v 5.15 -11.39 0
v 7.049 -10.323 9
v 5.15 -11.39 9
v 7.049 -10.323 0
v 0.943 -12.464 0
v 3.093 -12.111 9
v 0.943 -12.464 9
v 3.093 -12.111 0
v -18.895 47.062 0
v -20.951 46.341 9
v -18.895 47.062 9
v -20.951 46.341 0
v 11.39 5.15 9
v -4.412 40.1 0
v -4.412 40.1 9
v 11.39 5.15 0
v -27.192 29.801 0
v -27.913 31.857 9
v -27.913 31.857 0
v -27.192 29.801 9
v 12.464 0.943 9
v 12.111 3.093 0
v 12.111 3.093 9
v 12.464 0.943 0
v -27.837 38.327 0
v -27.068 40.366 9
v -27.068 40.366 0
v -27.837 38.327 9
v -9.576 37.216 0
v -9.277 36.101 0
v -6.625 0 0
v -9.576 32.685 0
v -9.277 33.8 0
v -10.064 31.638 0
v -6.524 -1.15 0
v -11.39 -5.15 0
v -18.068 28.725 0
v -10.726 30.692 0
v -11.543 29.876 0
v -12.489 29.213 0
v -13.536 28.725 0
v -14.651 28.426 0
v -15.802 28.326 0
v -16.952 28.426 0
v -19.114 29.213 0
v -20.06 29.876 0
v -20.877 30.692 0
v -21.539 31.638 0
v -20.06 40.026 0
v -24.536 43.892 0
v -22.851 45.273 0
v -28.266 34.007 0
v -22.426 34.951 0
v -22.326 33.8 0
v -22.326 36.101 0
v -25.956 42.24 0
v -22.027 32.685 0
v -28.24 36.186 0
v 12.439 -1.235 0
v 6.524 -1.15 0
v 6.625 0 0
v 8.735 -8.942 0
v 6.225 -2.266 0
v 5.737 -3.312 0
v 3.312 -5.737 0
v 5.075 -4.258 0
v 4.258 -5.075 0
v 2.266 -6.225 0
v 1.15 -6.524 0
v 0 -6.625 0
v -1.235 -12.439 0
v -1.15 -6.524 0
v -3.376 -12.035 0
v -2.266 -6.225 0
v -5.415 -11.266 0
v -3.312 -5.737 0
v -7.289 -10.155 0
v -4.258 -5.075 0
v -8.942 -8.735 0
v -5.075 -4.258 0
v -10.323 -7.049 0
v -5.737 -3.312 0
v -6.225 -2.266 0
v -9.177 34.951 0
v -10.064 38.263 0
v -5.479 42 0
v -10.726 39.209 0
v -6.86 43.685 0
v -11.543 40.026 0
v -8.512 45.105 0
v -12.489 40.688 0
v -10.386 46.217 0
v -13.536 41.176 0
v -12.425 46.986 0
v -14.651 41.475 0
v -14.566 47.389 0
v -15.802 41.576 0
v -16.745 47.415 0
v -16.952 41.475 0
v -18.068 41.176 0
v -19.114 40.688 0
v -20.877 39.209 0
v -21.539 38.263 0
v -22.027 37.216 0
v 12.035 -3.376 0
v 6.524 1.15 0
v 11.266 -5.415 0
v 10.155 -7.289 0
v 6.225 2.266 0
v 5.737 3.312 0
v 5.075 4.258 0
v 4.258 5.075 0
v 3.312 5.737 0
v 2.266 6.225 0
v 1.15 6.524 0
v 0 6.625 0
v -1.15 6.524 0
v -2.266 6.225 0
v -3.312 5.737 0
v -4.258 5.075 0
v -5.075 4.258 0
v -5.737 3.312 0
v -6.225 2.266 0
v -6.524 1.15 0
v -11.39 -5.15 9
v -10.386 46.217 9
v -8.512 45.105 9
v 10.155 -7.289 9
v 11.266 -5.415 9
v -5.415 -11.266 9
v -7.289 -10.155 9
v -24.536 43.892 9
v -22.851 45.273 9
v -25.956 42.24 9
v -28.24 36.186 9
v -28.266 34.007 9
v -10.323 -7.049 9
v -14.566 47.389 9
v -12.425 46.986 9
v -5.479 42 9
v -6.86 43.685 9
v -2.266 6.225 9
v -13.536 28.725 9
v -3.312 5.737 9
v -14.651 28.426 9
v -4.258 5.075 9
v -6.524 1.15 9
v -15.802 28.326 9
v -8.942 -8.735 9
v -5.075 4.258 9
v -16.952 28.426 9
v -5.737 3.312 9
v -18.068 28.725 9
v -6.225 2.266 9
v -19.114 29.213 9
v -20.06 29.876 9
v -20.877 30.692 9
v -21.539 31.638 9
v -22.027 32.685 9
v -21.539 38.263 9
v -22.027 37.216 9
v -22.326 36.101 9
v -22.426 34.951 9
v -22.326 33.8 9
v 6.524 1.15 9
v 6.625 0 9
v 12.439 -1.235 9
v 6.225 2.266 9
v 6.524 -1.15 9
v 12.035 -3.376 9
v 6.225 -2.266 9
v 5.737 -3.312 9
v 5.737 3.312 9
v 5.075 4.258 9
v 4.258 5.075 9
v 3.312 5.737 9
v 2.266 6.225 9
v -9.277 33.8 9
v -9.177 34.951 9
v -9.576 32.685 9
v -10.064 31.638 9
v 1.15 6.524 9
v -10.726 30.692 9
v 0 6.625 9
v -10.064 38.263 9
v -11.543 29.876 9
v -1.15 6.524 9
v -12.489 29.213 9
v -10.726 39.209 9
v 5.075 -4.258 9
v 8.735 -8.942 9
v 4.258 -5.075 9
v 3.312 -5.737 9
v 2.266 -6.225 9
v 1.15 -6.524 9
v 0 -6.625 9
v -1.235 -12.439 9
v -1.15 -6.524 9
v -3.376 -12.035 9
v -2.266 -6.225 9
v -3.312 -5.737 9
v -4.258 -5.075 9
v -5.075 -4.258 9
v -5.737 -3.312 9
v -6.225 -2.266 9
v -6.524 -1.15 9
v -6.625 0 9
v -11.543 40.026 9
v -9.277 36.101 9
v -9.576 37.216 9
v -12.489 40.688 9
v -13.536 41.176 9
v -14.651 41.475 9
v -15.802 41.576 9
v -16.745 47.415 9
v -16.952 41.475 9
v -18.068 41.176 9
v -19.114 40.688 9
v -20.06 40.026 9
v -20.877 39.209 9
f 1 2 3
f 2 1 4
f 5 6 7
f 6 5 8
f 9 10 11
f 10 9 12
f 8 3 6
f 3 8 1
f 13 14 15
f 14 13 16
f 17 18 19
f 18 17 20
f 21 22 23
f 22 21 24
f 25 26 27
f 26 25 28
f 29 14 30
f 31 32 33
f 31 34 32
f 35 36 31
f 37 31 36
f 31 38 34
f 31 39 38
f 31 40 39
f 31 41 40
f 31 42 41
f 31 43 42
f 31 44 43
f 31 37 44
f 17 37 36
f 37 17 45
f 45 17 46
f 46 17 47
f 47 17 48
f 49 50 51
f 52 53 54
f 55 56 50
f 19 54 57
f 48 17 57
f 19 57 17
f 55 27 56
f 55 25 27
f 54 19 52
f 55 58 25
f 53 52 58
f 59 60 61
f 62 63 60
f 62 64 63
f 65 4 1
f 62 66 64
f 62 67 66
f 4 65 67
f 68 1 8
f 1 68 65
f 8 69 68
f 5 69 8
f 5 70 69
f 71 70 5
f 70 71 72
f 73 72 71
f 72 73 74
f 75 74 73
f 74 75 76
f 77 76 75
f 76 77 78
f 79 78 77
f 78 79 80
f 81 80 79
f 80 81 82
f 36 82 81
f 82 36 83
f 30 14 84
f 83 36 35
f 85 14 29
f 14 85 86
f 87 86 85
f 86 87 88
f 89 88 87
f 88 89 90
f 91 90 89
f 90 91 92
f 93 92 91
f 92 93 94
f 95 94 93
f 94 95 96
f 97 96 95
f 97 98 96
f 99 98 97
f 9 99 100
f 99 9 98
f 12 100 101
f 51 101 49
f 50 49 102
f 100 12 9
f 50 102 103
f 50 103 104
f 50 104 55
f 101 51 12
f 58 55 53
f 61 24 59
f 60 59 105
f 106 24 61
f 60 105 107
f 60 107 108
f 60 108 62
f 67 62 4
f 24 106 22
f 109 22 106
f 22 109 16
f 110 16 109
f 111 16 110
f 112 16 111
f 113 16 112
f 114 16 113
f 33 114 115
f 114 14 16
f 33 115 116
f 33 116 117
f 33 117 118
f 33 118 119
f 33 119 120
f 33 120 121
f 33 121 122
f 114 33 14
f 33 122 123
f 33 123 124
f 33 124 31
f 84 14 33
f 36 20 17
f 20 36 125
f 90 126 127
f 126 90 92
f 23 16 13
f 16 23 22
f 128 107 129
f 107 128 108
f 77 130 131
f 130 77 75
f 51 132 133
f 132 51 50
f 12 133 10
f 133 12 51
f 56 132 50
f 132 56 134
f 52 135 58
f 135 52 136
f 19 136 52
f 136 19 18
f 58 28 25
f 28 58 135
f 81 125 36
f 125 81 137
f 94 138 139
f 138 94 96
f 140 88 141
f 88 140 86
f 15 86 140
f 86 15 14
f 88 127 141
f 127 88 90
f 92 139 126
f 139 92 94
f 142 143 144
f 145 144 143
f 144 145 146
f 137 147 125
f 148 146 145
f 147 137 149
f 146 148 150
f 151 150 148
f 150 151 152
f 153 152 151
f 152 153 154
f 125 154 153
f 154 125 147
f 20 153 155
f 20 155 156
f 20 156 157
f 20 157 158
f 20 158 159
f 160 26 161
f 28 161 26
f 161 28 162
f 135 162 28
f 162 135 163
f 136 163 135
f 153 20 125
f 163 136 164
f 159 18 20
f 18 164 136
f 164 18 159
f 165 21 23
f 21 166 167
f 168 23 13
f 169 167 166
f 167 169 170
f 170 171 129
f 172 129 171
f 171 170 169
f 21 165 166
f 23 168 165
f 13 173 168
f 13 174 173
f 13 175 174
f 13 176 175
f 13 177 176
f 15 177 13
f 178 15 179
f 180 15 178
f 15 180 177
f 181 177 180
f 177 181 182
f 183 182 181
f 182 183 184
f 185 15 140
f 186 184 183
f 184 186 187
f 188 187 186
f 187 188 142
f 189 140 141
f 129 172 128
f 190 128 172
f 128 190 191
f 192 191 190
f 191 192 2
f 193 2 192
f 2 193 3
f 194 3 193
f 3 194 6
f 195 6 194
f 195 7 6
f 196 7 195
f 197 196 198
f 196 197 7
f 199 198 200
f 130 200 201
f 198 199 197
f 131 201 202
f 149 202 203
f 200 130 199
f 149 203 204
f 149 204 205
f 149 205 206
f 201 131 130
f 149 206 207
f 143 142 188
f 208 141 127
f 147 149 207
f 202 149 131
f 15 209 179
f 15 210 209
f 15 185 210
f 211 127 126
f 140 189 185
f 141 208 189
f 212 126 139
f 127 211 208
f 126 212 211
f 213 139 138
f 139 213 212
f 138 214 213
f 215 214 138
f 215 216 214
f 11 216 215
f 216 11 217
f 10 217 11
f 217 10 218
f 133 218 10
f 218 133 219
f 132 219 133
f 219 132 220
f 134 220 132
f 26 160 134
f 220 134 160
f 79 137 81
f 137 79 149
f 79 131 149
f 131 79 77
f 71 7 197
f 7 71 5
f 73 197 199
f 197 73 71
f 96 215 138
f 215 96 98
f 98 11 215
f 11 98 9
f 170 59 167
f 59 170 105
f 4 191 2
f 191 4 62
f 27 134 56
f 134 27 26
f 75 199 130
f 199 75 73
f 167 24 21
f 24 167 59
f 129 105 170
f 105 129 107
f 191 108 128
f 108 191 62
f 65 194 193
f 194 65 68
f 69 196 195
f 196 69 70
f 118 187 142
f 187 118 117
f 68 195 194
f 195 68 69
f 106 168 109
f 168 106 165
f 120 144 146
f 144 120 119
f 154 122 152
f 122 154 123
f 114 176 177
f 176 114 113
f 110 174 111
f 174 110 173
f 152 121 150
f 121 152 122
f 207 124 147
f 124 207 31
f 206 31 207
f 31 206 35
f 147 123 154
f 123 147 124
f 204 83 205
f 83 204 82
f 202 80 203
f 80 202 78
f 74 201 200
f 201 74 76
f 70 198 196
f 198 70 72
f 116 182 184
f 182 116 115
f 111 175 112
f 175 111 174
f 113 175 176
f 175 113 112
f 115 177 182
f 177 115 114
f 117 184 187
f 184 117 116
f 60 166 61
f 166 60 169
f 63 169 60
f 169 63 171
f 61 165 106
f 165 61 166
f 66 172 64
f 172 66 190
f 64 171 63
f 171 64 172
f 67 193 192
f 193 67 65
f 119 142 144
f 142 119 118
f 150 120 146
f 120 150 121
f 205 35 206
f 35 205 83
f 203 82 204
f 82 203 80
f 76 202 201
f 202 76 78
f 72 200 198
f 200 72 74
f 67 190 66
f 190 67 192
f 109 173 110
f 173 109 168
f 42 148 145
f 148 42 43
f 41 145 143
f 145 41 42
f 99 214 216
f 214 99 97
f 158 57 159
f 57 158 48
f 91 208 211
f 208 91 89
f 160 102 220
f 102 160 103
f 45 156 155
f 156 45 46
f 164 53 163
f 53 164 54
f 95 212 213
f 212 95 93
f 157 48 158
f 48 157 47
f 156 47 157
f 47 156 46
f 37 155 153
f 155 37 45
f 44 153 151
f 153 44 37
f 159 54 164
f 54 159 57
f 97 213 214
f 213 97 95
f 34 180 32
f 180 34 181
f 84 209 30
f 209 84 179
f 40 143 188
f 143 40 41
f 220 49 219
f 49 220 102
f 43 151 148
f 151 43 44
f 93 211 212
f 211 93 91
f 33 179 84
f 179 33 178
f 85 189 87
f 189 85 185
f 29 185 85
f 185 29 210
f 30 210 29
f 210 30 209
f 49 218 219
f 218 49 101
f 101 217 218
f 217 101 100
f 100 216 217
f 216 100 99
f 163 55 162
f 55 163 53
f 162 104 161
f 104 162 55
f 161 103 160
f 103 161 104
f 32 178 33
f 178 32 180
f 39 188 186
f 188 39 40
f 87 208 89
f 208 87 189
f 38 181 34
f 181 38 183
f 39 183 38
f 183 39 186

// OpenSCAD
scale([10,10,10]){
difference() {
	linear_extrude(height=0.9) {
		polygon( points=[[-1.139,-0.514956], [-1.03227,-0.704918], [-0.894184,-0.873461], [-0.728924,-1.01546], [-0.541517,-1.12661], [-0.337655,-1.20353], [-0.123535,-1.24388], [0.0943397,-1.24643], [0.309348,-1.21112], [0.514956,-1.139], [0.704918,-1.03227], [0.873461,-0.894184], [1.01546,-0.728924], [1.12661,-0.541517], [1.20353,-0.337655], [1.24388,-0.123535], [1.24643,0.0943397], [1.21112,0.309348], [1.139,0.514956], [-0.441164,4.01002], [-0.547889,4.19998], [-0.68598,4.36853], [-0.851239,4.51053], [-1.03865,4.62168], [-1.24251,4.6986], [-1.45663,4.73895], [-1.6745,4.7415], [-1.88951,4.70618], [-2.09512,4.63407], [-2.28508,4.52734], [-2.45363,4.38925], [-2.59563,4.22399], [-2.70678,4.03658], [-2.7837,3.83272], [-2.82404,3.6186], [-2.8266,3.40073], [-2.79128,3.18572], [-2.71916,2.98011]]);
	}
	translate([0,0,-0.1]) {
		linear_extrude(height=1.1) {
			polygon( points=[[0.6625,0], [0.652435,0.115042], [0.622546,0.226588], [0.573742,0.33125], [0.507504,0.425847], [0.425847,0.507504], [0.33125,0.573742], [0.226588,0.622546], [0.115042,0.652435], [1.18912e-09,0.6625], [-0.115042,0.652435], [-0.226588,0.622546], [-0.33125,0.573742], [-0.425847,0.507504], [-0.507504,0.425847], [-0.573742,0.33125], [-0.622546,0.226588], [-0.652435,0.115042], [-0.6625,2.37824e-09], [-0.652435,-0.115042], [-0.622546,-0.226588], [-0.573742,-0.33125], [-0.507504,-0.425847], [-0.425847,-0.507504], [-0.33125,-0.573742], [-0.226588,-0.622546], [-0.115042,-0.652435], [-3.56736e-09,-0.6625], [0.115042,-0.652435], [0.226588,-0.622546], [0.33125,-0.573742], [0.425847,-0.507504], [0.507504,-0.425847], [0.573742,-0.33125], [0.622546,-0.226588], [0.652435,-0.115042]]);
		}
	}
	translate([0,0,-0.1]) {
		linear_extrude(height=1.1) {
			polygon( points=[[-0.917664,3.49507], [-0.927728,3.61011], [-0.957617,3.72165], [-1.00642,3.82632], [-1.07266,3.92091], [-1.15432,4.00257], [-1.24891,4.06881], [-1.35358,4.11761], [-1.46512,4.1475], [-1.58016,4.15757], [-1.69521,4.1475], [-1.80675,4.11761], [-1.91141,4.06881], [-2.00601,4.00257], [-2.08767,3.92091], [-2.15391,3.82632], [-2.20271,3.72165], [-2.2326,3.61011], [-2.24266,3.49507], [-2.2326,3.38002], [-2.20271,3.26848], [-2.15391,3.16382], [-2.08767,3.06922], [-2.00601,2.98756], [-1.91141,2.92132], [-1.80675,2.87252], [-1.69521,2.84263], [-1.58016,2.83257], [-1.46512,2.84263], [-1.35358,2.87252], [-1.24891,2.92132], [-1.15432,2.98756], [-1.07266,3.06922], [-1.00642,3.16382], [-0.957617,3.26848], [-0.927728,3.38002]]);
		}
	}
}
}
